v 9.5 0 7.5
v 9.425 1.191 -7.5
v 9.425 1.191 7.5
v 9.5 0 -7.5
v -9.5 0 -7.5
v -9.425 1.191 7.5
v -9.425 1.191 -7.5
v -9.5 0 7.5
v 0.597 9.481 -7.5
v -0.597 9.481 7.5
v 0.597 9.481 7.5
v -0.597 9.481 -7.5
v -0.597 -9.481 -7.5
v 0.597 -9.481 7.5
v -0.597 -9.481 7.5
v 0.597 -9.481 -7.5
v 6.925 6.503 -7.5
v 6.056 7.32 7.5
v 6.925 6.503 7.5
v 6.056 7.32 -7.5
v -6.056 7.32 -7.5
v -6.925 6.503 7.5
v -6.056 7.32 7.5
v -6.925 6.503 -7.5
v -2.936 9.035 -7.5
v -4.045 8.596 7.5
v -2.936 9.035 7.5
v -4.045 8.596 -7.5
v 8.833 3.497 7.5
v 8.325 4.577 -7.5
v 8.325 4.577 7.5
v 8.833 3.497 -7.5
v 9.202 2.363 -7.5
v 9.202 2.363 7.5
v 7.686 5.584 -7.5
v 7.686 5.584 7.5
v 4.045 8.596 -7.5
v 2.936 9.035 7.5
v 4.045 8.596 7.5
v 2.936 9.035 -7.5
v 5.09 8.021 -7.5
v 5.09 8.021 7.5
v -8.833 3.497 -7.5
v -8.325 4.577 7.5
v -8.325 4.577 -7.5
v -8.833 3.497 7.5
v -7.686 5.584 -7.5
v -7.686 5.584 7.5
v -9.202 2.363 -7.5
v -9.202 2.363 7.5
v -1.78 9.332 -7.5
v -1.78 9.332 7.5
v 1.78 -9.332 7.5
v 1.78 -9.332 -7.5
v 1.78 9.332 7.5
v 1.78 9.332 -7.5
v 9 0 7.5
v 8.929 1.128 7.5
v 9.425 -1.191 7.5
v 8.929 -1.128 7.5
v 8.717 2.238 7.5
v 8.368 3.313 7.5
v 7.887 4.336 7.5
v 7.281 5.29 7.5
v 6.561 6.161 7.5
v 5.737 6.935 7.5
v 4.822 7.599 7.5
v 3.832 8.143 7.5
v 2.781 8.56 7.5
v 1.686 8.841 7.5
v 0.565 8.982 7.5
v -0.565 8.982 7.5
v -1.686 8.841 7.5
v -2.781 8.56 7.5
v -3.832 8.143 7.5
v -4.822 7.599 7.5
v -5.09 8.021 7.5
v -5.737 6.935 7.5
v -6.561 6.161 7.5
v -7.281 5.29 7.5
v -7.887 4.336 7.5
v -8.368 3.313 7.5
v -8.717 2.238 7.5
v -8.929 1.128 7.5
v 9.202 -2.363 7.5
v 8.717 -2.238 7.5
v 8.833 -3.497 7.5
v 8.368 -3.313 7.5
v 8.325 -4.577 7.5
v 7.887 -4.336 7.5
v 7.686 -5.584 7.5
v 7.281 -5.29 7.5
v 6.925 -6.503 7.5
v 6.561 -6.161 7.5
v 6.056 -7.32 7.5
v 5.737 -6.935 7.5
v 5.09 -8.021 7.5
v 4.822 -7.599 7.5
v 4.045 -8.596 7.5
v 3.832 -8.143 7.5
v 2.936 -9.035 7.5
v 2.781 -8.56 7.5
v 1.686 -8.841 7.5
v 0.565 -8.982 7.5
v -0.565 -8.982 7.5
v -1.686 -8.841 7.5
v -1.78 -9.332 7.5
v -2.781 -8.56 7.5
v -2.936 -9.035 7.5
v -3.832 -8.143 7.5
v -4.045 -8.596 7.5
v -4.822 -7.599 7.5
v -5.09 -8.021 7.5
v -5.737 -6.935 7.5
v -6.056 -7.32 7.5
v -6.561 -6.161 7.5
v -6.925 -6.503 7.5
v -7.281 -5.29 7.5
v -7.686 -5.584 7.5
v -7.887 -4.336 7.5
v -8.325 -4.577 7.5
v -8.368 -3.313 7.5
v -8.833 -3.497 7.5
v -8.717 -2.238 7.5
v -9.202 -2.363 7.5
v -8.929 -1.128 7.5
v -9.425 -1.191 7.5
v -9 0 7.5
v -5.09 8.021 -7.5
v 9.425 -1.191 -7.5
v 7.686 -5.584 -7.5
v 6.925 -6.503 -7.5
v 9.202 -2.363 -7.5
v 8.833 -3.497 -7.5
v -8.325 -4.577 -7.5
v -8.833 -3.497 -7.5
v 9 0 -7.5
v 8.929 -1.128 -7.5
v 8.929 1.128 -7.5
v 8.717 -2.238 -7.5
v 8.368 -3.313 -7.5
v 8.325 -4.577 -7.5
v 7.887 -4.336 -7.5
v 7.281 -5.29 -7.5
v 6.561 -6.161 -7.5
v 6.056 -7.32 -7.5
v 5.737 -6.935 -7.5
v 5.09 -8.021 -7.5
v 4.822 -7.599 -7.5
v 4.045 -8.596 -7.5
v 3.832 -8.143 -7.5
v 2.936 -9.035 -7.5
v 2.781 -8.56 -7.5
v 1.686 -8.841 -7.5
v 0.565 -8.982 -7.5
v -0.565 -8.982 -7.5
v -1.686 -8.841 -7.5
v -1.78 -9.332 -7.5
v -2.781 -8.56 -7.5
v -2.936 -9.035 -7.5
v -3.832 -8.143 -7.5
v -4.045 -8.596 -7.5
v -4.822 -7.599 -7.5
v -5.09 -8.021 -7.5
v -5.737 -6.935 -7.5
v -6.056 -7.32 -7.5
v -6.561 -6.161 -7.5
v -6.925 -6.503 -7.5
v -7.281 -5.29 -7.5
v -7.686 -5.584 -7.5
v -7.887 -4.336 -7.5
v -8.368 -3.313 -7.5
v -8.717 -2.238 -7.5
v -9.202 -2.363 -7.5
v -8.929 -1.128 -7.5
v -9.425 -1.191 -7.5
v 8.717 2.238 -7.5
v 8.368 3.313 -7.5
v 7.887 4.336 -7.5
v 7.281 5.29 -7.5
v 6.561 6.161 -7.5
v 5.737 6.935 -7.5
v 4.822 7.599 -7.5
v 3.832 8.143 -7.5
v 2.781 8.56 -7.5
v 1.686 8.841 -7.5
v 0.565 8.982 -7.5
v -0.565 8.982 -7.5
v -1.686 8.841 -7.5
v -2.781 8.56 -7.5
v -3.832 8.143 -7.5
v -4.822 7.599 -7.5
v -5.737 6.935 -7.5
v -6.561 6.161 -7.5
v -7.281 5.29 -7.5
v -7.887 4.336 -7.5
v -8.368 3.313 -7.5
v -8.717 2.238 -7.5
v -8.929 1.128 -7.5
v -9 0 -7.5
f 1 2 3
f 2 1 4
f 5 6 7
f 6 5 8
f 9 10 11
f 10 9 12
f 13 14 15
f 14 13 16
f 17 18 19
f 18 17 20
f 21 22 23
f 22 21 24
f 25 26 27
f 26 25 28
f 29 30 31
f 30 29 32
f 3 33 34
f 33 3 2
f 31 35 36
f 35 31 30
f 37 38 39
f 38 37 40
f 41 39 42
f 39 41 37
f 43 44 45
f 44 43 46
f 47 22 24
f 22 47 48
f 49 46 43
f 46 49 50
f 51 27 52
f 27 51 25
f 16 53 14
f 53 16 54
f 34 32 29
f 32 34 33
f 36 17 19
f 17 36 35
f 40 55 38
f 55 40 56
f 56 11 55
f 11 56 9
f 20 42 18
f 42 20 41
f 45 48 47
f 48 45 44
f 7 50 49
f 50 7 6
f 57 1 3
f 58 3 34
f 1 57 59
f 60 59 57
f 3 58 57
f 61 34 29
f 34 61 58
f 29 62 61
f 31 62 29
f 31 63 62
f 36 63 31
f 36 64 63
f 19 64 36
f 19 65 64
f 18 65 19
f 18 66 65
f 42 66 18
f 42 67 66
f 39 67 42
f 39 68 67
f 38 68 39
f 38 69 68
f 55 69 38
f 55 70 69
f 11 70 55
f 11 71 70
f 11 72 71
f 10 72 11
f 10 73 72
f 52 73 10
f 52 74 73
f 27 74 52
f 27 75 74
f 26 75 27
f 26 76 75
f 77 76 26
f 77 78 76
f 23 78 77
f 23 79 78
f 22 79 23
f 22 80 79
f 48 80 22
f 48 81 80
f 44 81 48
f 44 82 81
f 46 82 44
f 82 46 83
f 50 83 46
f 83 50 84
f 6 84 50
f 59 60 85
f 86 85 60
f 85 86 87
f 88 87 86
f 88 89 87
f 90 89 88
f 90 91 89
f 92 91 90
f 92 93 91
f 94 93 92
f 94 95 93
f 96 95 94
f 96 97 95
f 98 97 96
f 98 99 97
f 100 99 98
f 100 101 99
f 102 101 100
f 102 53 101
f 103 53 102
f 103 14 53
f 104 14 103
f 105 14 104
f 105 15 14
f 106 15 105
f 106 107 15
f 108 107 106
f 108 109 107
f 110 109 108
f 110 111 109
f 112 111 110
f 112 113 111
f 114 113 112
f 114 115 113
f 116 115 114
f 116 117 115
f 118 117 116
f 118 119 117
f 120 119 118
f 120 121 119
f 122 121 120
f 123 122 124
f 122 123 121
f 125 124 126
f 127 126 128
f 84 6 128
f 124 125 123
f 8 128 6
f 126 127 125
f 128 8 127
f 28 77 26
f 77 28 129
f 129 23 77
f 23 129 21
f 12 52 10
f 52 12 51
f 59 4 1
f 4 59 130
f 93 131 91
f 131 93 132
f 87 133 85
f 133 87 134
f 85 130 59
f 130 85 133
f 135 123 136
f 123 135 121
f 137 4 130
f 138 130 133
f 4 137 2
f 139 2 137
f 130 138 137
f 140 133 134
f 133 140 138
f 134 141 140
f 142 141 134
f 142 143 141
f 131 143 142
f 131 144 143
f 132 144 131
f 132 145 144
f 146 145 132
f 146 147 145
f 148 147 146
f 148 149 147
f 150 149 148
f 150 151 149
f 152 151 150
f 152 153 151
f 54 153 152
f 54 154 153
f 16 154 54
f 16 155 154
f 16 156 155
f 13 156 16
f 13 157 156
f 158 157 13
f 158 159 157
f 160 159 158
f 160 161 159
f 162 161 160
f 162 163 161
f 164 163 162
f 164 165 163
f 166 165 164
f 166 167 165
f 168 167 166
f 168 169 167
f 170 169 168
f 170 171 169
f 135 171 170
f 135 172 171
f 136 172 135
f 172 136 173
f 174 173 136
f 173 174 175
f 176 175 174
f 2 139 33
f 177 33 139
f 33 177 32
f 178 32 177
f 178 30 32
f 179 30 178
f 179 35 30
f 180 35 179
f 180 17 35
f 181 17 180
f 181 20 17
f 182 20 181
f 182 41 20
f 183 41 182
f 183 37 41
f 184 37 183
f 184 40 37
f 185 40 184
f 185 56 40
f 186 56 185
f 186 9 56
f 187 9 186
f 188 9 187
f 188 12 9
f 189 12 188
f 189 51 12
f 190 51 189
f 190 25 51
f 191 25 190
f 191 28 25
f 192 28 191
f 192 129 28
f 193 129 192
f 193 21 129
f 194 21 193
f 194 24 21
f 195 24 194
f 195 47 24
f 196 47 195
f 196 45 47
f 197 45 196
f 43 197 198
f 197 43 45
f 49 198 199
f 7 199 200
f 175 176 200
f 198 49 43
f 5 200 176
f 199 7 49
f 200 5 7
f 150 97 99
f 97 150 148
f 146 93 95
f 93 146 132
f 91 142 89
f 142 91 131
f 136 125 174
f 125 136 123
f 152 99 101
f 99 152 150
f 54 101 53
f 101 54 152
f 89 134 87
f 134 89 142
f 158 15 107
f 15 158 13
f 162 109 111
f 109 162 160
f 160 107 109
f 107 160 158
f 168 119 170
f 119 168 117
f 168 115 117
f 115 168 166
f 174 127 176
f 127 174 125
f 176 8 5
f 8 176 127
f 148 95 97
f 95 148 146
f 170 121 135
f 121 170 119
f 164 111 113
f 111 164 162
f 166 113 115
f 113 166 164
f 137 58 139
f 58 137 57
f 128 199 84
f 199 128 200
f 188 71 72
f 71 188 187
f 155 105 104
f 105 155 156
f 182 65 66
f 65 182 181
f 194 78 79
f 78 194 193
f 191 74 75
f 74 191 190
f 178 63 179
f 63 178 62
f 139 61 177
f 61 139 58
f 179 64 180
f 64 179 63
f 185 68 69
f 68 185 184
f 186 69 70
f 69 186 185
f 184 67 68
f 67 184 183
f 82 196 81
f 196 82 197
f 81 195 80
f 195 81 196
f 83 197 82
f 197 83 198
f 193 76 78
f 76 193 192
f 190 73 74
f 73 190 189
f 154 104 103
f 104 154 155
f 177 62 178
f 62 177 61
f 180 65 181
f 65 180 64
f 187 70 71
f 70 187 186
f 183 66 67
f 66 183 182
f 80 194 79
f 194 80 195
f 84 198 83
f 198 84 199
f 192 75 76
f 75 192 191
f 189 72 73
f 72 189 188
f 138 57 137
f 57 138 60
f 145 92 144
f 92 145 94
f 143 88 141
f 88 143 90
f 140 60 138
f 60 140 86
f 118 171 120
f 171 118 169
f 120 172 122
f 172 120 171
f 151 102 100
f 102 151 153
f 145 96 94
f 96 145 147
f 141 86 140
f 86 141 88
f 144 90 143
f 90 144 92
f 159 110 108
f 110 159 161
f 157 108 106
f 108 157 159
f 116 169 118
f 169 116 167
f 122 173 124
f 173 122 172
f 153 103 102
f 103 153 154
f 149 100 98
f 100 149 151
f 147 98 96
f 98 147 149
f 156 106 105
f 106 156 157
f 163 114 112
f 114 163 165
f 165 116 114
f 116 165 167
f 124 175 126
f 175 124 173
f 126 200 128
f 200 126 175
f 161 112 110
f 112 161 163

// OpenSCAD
$fn = 50;


difference() {
	union() {
		translate(v = [0, 0, -7.5000000000]) {
			cylinder(h = 15, r = 9.5000000000);
		}
	}
	union() {
		translate(v = [0, 0, -100.0000000000]) {
			cylinder(h = 200, r = 9);
		}
	}
}
